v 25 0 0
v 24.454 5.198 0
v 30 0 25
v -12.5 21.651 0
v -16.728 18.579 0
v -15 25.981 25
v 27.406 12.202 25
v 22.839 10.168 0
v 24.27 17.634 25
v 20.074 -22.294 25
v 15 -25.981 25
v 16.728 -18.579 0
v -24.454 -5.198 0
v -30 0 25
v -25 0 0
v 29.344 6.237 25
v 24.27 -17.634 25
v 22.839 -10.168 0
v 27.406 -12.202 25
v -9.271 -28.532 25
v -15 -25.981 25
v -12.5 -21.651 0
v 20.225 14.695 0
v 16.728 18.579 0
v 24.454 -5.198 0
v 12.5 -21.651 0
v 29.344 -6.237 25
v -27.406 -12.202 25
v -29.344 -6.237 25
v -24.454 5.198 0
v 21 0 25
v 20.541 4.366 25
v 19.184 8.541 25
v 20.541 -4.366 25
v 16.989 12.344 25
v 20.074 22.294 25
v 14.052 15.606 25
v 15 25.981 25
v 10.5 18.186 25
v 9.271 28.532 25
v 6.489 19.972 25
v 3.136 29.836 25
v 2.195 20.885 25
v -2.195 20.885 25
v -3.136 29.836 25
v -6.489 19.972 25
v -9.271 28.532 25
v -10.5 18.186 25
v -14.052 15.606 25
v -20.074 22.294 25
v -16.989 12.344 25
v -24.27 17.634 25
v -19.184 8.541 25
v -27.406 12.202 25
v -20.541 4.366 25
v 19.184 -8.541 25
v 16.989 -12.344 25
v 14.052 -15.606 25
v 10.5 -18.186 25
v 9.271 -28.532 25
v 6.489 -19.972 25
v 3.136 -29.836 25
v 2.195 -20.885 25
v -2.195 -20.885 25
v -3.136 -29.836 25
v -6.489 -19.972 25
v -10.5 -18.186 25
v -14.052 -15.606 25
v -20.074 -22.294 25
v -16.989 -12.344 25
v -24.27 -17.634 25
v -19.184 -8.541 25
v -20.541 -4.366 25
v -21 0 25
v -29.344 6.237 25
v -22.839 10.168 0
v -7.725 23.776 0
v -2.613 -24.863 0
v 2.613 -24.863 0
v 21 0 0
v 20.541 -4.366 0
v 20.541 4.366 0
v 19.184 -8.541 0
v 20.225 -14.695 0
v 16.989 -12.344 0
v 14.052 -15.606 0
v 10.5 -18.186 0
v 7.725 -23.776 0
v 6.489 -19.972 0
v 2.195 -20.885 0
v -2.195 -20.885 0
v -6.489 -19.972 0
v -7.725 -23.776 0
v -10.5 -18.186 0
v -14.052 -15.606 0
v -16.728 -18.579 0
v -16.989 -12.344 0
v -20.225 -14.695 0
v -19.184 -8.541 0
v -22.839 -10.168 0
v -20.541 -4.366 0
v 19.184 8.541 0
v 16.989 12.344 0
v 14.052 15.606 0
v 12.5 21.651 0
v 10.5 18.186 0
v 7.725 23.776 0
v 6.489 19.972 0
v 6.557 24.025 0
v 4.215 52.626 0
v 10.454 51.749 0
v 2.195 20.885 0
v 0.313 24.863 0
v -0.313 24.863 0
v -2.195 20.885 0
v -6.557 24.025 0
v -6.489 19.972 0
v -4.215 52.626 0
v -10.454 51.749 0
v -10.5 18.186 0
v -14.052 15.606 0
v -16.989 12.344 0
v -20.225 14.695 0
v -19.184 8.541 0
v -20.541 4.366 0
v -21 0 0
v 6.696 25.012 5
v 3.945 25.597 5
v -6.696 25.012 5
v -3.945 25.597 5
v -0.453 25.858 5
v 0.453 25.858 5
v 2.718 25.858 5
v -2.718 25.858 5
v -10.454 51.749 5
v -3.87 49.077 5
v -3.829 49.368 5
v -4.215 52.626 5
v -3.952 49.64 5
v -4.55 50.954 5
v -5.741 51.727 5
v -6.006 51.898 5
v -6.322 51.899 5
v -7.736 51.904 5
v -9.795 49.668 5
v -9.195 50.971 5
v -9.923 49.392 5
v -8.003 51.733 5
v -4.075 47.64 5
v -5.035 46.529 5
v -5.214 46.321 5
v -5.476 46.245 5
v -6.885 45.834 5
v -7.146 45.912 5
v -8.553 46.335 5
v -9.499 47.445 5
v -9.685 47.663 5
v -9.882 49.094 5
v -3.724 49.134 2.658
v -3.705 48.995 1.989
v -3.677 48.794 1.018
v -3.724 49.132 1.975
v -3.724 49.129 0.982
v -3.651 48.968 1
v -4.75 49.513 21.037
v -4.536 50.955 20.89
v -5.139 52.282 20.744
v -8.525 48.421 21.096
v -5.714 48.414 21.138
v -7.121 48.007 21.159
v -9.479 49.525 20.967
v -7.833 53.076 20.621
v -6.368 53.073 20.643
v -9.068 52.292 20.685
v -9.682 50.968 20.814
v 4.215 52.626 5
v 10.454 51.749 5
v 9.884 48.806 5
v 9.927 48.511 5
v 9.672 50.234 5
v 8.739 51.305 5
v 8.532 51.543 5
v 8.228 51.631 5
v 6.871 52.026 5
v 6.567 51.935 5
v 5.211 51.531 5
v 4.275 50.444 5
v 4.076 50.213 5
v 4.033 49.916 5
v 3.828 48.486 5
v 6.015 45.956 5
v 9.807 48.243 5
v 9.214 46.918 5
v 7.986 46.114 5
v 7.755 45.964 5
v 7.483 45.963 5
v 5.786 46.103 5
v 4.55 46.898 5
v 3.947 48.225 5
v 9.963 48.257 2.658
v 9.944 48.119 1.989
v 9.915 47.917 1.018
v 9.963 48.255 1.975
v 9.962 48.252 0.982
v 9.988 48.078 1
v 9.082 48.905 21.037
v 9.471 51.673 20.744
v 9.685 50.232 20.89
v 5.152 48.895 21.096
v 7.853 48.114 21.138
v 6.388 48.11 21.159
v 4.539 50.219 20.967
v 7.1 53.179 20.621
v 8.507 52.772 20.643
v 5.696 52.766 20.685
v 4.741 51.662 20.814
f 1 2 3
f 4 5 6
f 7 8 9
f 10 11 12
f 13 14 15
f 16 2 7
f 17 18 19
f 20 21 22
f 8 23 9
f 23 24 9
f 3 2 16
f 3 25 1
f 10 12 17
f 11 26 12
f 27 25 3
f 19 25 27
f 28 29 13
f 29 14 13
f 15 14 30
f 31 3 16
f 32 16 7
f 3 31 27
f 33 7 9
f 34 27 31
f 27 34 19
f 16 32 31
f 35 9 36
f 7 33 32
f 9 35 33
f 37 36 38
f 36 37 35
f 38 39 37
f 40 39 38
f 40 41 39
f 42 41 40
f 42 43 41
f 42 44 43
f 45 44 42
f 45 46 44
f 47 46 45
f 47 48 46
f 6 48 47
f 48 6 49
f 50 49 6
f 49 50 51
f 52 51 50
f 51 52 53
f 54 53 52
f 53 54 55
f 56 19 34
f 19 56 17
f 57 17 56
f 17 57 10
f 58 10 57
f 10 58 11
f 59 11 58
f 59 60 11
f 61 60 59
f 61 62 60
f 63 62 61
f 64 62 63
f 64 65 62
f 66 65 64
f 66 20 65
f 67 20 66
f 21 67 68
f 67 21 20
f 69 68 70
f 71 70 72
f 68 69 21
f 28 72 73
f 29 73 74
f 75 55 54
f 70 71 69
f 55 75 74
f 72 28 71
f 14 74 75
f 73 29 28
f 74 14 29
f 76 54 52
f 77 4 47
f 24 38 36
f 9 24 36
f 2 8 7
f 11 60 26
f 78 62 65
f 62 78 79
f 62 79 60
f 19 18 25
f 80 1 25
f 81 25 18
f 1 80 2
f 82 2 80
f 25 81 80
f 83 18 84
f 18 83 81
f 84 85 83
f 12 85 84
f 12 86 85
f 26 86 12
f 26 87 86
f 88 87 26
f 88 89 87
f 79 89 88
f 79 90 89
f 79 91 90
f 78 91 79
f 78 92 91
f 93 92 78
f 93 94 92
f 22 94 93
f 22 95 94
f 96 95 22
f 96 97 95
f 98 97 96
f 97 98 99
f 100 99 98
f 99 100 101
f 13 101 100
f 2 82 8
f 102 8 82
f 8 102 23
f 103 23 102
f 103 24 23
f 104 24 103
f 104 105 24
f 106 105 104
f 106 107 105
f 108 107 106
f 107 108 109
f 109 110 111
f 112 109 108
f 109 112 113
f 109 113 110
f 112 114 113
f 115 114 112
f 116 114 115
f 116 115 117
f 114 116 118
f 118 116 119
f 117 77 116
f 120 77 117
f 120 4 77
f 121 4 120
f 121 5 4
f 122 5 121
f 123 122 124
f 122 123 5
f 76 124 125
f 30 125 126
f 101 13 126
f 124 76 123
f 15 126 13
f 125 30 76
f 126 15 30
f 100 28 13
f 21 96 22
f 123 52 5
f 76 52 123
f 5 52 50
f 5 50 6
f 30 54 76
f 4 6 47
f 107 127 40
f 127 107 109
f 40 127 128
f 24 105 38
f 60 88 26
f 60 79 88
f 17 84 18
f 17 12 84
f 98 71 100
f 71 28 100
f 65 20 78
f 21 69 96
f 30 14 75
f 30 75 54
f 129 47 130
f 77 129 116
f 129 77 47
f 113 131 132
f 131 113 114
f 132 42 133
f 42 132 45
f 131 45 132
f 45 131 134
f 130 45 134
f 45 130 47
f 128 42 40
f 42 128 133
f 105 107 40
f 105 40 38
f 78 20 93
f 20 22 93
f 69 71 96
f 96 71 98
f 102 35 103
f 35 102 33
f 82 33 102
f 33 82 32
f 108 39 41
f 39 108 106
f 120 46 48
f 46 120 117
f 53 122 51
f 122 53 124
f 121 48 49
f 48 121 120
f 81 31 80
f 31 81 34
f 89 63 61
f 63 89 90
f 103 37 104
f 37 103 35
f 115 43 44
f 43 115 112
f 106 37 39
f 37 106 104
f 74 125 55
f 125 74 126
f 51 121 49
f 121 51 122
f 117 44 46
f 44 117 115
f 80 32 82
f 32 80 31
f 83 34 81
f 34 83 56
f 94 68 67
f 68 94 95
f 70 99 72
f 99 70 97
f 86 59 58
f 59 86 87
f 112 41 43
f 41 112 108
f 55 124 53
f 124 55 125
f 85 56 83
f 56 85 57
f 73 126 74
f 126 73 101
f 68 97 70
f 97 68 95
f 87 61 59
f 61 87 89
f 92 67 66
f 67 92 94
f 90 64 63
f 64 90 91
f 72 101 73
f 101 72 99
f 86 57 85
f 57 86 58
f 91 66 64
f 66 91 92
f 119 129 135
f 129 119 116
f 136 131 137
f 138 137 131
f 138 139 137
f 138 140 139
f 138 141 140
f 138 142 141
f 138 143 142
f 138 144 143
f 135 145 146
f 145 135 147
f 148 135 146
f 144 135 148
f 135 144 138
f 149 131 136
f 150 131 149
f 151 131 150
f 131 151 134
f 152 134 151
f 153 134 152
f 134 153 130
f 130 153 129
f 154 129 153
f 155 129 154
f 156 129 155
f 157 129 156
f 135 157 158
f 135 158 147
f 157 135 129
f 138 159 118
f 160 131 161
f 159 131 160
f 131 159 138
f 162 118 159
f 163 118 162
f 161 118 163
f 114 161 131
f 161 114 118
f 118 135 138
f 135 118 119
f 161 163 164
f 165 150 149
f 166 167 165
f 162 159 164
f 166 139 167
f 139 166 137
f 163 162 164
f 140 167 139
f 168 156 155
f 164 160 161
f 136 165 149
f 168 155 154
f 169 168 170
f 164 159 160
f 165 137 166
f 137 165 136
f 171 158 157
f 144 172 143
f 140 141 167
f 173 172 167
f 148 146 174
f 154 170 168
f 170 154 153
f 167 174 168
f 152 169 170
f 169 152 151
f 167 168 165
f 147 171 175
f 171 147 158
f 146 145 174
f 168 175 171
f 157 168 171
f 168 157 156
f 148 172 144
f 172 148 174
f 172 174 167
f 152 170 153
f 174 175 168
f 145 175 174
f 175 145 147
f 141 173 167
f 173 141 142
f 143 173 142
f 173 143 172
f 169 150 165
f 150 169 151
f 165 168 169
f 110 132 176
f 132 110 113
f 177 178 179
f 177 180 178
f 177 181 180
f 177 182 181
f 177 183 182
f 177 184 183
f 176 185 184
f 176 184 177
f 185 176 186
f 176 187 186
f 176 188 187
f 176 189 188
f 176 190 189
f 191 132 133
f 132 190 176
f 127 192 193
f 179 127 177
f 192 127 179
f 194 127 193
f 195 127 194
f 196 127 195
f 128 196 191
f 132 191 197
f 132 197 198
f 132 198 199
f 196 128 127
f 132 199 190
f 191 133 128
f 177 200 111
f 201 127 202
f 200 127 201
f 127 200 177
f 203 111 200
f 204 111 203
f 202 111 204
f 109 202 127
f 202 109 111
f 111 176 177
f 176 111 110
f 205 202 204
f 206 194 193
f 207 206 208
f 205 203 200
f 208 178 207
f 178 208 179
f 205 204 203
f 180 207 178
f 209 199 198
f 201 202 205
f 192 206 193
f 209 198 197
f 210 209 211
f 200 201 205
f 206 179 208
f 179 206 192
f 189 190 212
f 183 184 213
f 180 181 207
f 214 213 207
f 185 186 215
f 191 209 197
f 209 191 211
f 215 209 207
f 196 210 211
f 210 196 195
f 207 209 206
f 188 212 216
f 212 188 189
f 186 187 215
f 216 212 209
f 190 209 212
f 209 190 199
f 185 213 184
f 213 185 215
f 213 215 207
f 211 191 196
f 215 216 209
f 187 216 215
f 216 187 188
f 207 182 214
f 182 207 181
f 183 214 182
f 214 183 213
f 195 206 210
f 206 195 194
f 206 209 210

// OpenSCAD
difference(){
  cylinder(25,25,30);
cylinder(26,21,21);
}
rotate([0,0,8]) {
translate([0,37.3,2.5]) cube([6.3,30.8,5], true);
 translate([0,49,1]) rotate([-6,0,0]) cylinder(20,3.2,2.6);
}
rotate([0,0,-8]) {
translate([0,37.3,2.5]) cube([6.3,30.8,5], true);
 translate([0,49,1]) rotate([-6,0,0]) cylinder(20,3.2,2.6);
}
